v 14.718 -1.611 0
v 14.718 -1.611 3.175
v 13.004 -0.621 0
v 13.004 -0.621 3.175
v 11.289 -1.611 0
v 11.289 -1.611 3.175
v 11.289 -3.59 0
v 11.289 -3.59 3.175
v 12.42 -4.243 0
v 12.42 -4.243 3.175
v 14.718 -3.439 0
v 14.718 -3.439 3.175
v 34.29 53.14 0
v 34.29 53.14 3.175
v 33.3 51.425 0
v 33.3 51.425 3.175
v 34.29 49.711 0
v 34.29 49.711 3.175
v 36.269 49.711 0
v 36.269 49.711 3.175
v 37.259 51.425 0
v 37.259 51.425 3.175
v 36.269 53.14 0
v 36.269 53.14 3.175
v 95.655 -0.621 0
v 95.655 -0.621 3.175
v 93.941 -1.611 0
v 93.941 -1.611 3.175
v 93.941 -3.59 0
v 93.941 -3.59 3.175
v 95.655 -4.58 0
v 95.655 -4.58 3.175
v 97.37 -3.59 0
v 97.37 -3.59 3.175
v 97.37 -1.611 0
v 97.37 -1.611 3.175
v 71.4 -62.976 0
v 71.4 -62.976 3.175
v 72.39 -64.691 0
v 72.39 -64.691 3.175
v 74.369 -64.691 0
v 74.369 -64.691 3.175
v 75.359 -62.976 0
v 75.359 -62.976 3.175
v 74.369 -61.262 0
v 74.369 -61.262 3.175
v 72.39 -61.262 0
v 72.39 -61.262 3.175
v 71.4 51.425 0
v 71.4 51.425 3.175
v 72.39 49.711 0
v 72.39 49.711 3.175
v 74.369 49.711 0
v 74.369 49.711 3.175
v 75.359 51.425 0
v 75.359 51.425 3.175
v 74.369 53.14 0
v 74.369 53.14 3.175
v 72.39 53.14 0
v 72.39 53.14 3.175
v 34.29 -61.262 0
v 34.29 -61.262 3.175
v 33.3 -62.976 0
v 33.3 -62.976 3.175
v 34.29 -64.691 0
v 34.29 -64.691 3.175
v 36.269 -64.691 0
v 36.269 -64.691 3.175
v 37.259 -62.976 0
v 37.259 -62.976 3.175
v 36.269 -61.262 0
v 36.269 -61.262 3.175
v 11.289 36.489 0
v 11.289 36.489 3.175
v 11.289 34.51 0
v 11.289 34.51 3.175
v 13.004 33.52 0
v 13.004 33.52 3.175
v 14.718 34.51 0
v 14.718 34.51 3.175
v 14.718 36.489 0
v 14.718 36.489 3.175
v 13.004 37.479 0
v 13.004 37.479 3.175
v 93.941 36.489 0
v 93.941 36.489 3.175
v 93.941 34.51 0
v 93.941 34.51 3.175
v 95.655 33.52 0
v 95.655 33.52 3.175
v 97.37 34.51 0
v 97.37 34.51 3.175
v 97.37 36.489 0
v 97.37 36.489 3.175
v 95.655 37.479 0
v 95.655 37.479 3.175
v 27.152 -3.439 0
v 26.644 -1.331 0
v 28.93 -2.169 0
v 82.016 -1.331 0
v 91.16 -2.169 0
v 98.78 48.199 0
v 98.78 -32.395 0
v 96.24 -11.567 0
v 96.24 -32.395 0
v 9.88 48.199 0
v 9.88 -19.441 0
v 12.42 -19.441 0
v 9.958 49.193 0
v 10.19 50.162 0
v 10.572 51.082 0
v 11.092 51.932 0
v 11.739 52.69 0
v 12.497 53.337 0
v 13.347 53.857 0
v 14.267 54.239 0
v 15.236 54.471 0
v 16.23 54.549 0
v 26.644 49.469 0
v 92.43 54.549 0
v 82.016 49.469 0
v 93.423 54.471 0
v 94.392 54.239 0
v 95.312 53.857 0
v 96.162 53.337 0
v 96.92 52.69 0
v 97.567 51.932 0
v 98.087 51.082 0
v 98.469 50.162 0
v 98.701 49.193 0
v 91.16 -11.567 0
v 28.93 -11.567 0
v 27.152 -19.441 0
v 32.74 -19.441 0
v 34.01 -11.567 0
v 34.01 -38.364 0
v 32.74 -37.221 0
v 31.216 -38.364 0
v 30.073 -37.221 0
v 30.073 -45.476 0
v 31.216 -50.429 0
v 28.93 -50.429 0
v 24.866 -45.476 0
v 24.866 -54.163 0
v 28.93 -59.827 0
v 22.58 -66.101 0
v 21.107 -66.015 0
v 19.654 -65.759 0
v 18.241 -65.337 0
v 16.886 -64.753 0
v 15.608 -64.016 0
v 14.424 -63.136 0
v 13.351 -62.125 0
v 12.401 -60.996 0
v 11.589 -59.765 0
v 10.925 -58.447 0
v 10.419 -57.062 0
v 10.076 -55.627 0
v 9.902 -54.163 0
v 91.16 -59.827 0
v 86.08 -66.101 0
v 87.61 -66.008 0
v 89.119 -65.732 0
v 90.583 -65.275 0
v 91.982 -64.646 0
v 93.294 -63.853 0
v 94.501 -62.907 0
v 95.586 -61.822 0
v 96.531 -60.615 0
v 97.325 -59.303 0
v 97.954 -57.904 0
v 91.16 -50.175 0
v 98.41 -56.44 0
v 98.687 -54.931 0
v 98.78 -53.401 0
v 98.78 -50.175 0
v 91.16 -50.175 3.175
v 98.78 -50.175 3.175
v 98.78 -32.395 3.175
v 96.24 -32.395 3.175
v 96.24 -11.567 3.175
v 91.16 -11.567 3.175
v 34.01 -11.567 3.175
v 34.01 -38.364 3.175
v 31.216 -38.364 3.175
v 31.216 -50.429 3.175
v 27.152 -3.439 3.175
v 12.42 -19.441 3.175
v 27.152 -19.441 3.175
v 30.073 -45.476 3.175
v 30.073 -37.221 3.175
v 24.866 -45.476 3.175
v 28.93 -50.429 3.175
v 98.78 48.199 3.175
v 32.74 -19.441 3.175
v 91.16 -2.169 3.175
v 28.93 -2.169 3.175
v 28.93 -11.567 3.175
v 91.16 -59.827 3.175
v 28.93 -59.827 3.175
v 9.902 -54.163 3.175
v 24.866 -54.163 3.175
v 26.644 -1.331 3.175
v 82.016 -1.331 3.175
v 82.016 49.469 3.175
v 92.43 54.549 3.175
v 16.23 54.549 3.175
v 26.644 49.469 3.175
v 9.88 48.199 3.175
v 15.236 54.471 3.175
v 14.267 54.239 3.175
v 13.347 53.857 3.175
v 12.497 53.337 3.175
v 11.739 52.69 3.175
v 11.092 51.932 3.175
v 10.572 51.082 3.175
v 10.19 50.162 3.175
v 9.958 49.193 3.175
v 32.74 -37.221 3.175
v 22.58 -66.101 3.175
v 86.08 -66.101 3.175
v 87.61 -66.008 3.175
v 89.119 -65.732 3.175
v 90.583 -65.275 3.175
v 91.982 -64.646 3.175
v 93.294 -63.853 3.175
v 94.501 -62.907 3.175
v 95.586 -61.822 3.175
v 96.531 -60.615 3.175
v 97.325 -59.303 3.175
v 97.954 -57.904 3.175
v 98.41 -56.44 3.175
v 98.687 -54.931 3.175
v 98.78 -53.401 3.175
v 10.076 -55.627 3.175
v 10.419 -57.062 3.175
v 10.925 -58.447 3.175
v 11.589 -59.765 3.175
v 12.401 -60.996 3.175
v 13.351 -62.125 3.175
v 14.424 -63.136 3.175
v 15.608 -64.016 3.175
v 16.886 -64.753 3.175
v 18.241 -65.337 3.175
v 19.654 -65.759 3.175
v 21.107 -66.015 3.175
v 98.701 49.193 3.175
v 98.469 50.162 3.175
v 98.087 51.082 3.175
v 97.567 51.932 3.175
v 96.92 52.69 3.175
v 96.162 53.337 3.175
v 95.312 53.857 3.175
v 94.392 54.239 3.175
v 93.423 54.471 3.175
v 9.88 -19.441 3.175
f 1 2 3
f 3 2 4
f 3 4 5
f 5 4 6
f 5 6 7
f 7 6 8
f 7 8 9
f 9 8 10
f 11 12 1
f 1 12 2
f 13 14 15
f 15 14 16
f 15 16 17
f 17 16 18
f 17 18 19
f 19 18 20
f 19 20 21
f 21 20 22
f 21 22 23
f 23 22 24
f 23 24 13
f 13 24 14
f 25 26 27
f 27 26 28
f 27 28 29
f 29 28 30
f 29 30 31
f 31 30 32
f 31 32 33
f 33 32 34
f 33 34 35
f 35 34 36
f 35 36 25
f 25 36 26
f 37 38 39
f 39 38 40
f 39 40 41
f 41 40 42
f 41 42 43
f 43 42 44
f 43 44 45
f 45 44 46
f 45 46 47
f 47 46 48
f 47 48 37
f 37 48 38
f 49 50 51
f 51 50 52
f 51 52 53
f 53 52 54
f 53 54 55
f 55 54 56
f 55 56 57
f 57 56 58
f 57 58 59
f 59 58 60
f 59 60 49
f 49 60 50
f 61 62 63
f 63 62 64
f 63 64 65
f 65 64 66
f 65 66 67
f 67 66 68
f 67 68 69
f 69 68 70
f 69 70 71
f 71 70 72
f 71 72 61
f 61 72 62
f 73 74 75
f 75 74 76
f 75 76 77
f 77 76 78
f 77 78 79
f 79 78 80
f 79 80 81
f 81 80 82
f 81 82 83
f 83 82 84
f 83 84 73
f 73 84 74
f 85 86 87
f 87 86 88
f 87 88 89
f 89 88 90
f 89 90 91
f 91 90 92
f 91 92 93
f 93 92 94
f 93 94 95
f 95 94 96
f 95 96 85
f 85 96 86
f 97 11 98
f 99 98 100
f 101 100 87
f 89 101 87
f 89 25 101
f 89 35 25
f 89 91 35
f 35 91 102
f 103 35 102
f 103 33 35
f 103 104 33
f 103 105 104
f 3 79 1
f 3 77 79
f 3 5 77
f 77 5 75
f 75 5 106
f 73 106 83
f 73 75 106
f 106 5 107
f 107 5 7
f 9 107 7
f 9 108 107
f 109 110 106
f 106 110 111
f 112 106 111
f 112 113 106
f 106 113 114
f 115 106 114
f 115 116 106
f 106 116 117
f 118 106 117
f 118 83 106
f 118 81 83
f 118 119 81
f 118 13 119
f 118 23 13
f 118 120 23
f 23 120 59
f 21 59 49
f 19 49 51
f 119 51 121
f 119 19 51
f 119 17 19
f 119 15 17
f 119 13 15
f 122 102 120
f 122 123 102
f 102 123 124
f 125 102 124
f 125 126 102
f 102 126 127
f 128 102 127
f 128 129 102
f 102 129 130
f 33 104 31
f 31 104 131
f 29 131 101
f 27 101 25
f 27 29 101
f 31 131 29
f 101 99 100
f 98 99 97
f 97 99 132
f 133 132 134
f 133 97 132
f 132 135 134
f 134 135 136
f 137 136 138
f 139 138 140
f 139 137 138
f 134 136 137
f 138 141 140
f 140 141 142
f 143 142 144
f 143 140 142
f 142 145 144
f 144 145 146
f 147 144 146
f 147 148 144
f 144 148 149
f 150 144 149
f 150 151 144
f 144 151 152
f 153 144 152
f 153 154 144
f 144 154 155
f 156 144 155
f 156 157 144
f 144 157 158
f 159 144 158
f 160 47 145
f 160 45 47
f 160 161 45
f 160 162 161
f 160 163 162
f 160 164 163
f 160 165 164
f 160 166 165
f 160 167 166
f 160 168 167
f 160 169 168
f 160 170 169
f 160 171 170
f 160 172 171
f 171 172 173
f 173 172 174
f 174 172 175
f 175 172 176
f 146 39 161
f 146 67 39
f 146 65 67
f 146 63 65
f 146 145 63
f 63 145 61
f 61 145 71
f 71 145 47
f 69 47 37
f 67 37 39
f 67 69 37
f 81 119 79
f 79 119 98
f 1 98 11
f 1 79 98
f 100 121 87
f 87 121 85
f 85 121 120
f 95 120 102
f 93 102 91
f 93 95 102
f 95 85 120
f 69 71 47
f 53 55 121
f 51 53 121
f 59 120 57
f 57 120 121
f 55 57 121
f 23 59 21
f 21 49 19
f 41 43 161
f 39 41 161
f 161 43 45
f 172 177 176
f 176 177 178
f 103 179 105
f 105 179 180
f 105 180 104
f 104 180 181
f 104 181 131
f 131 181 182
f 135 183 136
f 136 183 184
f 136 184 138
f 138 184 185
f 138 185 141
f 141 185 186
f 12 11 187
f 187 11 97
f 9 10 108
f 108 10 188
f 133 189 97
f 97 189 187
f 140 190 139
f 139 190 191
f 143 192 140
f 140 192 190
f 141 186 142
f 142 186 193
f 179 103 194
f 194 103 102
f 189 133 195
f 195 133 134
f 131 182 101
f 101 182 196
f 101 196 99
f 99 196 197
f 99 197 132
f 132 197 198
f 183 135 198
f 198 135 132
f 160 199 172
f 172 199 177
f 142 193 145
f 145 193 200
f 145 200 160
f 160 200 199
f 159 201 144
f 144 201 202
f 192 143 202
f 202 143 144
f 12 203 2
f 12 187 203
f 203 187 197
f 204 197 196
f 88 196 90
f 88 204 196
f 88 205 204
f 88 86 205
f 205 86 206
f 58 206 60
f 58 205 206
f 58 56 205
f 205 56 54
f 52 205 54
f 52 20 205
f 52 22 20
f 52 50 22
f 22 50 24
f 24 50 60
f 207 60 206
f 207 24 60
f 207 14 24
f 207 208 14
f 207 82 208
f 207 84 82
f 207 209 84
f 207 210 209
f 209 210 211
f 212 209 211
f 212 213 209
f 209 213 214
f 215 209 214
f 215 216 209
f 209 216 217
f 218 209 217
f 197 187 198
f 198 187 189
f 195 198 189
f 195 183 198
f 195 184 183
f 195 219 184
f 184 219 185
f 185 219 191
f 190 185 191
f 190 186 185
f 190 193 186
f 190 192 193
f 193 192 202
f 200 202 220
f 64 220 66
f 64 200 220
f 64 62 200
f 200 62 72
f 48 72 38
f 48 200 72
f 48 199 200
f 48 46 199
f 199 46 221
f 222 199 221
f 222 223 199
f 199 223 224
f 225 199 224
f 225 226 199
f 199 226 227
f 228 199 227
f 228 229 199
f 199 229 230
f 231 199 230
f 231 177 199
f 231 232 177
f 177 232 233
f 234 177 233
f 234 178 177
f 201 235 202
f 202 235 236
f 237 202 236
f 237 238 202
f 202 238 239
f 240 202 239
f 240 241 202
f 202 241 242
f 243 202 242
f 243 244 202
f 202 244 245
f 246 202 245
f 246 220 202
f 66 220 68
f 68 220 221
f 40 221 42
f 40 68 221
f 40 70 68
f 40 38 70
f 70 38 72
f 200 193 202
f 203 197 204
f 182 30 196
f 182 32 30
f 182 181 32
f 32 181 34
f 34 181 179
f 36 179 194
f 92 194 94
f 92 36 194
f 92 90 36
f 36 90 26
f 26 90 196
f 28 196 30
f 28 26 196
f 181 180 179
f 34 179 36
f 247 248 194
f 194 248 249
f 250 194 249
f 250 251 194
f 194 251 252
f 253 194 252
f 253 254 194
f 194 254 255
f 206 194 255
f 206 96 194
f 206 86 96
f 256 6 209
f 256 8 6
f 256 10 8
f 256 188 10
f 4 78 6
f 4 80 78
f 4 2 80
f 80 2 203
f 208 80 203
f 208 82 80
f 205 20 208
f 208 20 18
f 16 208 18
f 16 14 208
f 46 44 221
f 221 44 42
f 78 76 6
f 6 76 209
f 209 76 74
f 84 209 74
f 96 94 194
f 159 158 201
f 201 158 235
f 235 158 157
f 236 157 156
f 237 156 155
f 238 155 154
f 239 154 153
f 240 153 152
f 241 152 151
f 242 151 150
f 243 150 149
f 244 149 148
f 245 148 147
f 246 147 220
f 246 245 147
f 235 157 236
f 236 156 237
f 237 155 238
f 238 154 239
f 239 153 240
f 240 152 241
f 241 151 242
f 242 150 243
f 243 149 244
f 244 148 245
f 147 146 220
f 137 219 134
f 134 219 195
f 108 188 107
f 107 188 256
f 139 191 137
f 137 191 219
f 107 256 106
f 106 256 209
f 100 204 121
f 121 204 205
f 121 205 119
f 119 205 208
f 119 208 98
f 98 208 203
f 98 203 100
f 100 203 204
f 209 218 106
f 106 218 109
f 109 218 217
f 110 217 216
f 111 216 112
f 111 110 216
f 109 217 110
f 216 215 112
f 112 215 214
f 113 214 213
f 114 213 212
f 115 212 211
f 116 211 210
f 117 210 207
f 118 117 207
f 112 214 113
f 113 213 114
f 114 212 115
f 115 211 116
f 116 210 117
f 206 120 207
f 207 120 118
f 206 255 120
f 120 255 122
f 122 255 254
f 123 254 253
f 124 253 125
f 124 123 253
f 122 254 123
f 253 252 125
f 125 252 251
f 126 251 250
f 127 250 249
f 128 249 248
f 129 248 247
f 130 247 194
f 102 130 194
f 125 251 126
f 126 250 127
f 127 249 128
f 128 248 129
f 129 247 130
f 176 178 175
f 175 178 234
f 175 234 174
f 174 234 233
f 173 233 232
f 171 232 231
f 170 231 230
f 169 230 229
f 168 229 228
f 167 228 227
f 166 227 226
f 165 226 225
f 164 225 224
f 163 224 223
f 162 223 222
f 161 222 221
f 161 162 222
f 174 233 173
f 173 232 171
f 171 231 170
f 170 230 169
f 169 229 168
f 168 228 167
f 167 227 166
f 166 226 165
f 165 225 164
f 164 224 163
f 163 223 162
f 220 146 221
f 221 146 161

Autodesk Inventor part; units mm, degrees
ref_plane "YZ Plane" through (0, 0, 0) normal (1, 0, 0) x (0, 1, 0)
ref_plane "XZ Plane" through (0, 0, 0) normal (0, 1, 0) x (-1, 0, 0)
ref_plane "XY Plane" through (0, 0, 0) normal (0, 0, 1) x (1, 0, 0)
sketch "Sketch1" plane through (0, 0, 0) normal (0, 0, 1) x (1, 0, 0)
  line L0 (9.8795, 48.1994) -> (9.8795, -53.4006)
  line L1 (16.2295, 54.5494) -> (92.4295, 54.5494)
  line L2 (98.7795, 48.1994) -> (98.7795, -53.4006)
  line L3 (22.5795, -66.1006) -> (86.0795, -66.1006)
  arc A0 (9.8795, -53.4006) -> (22.5795, -66.1006) centre (22.5795, -53.4006) ccw
  arc A1 (16.2295, 54.5494) -> (9.8795, 48.1994) centre (16.2295, 48.1994) ccw
  arc A2 (98.7795, 48.1994) -> (92.4295, 54.5494) centre (92.4295, 48.1994) ccw
  arc A3 (86.0795, -66.1006) -> (98.7795, -53.4006) centre (86.0795, -53.4006) ccw
  point P0 (0, 0)
  dimension "d0" = 12.7
  dimension "d1" = 6.35
  dimension "d2" = 120.65
  dimension "d3" = 88.9
extrude "Extrusion1" add sketch "Sketch1" along normal blind 3.175
sketch "Sketch2" plane through (0, 0, 3.175) normal (0, 0, 1) x (1, 0, 0)
  line L0 (9.8795, -53.4006) -> (9.8795, 48.1994) projected
  line L1 (98.7795, 48.1994) -> (98.7795, -53.4006) projected
  line L2 (16.2295, 54.5494) -> (92.4295, 54.5494) projected
  line L3 (26.6435, 49.4694) -> (82.0155, 49.4694)
  line L4 (82.0155, 49.4694) -> (82.0155, -1.3306)
  line L5 (82.0155, -1.3306) -> (26.6435, -1.3306)
  line L6 (26.6435, -1.3306) -> (26.6435, 49.4694)
  point P0 (0, 0)
  dimension "d13" = 16.764
  dimension "d14" = 16.764
  dimension "d15" = 5.08
  dimension "d16" = 55.88
extrude "Extrusion2" cut sketch "Sketch2" against normal through all
sketch "Sketch3" plane through (0, 0, 3.175) normal (0, 0, 1) x (1, 0, 0)
  line L0 (9.8795, -53.4006) -> (9.8795, 48.1994) projected
  line L1 (86.0795, -66.1006) -> (22.5795, -66.1006) projected
  line L2 (9.8795, -19.4408) -> (32.7395, -19.4408)
  line L3 (32.7395, -19.4408) -> (32.7395, -37.2208)
  line L4 (32.7395, -37.2208) -> (9.8795, -37.2208)
  point P0 (0, 0)
  dimension "d20" = 28.8798
  dimension "d21" = 46.6598
  dimension "d22" = 22.86
extrude "Extrusion3" cut sketch "Sketch3" against normal through all
sketch "Sketch4" plane through (0, 0, 3.175) normal (0, 0, 1) x (1, 0, 0)
  line L0 (9.8795, -53.4006) -> (9.8795, -37.2208) projected
  arc A0 (9.8795, -53.4006) -> (22.5795, -66.1006) centre (22.5795, -53.4006) ccw projected
  line L1 (86.0795, -66.1006) -> (22.5795, -66.1006) projected
  line L2 (24.8655, -43.5708) -> (24.8655, -54.1626)
  line L3 (24.8655, -43.5708) -> (9.8795, -43.5708)
  line L4 (24.8655, -54.1626) -> (9.9024, -54.1626)
  point P0 (0, 0)
  dimension "d26" = 22.5298
  dimension "d27" = 14.986
  dimension "d28" = 11.938
extrude "Extrusion4" cut sketch "Sketch4" against normal through all
sketch "Sketch5" plane through (0, 0, 3.175) normal (0, 0, 1) x (1, 0, 0)
  line L0 (86.0795, -66.1006) -> (22.5795, -66.1006) projected
  line L1 (9.8795, -19.4408) -> (9.8795, 48.1994) projected
  line L2 (9.8795, -43.5708) -> (9.8795, -37.2208) projected
  line L3 (28.9295, -2.1688) -> (91.1595, -2.1688)
  line L4 (91.1595, -2.1688) -> (91.1595, -11.5668)
  line L5 (91.1595, -11.5668) -> (28.9295, -11.5668)
  line L6 (28.9295, -11.5668) -> (28.9295, -2.1688)
  line L7 (28.9295, -50.4288) -> (91.1595, -50.4288)
  line L8 (91.1595, -50.4288) -> (91.1595, -59.8268)
  line L9 (91.1595, -59.8268) -> (28.9295, -59.8268)
  line L10 (28.9295, -59.8268) -> (28.9295, -50.4288)
  point P0 (0, 0)
  dimension "d31" = 54.5338
  dimension "d32" = 9.398
  dimension "d33" = 62.23
  dimension "d34" = 19.05
  dimension "d35" = 19.05
  dimension "d36" = 6.2738
extrude "Extrusion5" cut sketch "Sketch5" against normal through all
sketch "Sketch8" plane through (0, 0, 3.175) normal (0, 0, 1) x (1, 0, 0)
  line L0 (91.1595, -11.5668) -> (28.9295, -11.5668) projected
  line L1 (28.9295, -50.4288) -> (91.1595, -50.4288) projected
  line L2 (91.1595, -50.4288) -> (91.1595, -59.8268) projected
  line L3 (9.8795, -43.5708) -> (24.8655, -43.5708) projected
  line L4 (24.8655, -43.5708) -> (24.8655, -54.1626) projected
  line L5 (86.0795, -66.1006) -> (22.5795, -66.1006) projected
  line L6 (98.7795, 48.1994) -> (98.7795, -53.4006) projected
  line L7 (9.8795, -19.4408) -> (9.8795, 48.1994) projected
  line L8 (9.8795, -19.4408) -> (32.7395, -19.4408) projected
  line L9 (32.7395, -37.2208) -> (9.8795, -37.2208) projected
  line L10 (9.8795, -43.5708) -> (9.8795, -37.2208) projected
  line L11 (96.2395, -11.5668) -> (96.2395, -32.3948)
  line L12 (96.2395, -32.3948) -> (98.7795, -32.3948)
  line L13 (91.1595, -11.5668) -> (96.2395, -11.5668)
  line L14 (98.7795, -50.1748) -> (91.1595, -50.1748)
  line L15 (9.8795, -3.4388) -> (27.1515, -3.4388)
  line L16 (27.1515, -3.4388) -> (27.1515, -19.4408)
  line L17 (34.0095, -11.5668) -> (34.0095, -38.3638)
  line L18 (31.2155, -38.3638) -> (31.2155, -50.4288)
  line L19 (30.0725, -37.2208) -> (30.0725, -45.4758)
  line L20 (24.8655, -45.4758) -> (30.0725, -45.4758)
  line L21 (31.2155, -38.3638) -> (34.0095, -38.3638)
  line L22 (91.1595, -50.4288) -> (91.1595, -50.1748)
  line L23 (12.4195, -3.4388) -> (12.4195, -19.4408)
  point P0 (0, 0)
  dimension "d63" = 2.54
  dimension "d67" = 15.9258
  dimension "d68" = 16.002
  dimension "d69" = 17.272
  dimension "d70" = 24.13
  dimension "d71" = 21.336
  dimension "d72" = 1.143
  dimension "d73" = 1.143
  dimension "d76" = 17.78
  dimension "d78" = 2.54
  dimension "d79" = 1.905
extrude "Extrusion11" cut sketch "Sketch8" against normal through all contours L13 L11 L12 L6 L14 L22 L1 L18 L21 L17 L0 | L10 L9 L19 L20 L4 L3 | L23 L15 L16 L8
sketch "Sketch9" plane through (0, 0, 3.175) normal (0, 0, 1) x (1, 0, 0)
  line L0 (98.7795, 48.1994) -> (98.7795, -32.3948) projected
  line L1 (16.2295, 54.5494) -> (92.4295, 54.5494) projected
  line L2 (9.8795, -19.4408) -> (9.8795, 48.1994) projected
  line L3 (86.0795, -66.1006) -> (22.5795, -66.1006) projected
  line L4 (36.2694, 49.7107) -> (34.2897, 49.7107)
  line L5 (34.2897, 49.7107) -> (33.2998, 51.4252)
  line L6 (33.2998, 51.4252) -> (34.2897, 53.1397)
  line L7 (34.2897, 53.1397) -> (36.2694, 53.1397)
  line L8 (36.2694, 53.1397) -> (37.2593, 51.4252)
  line L9 (37.2593, 51.4252) -> (36.2694, 49.7107)
  line L10 (14.7182, 34.5095) -> (13.0037, 33.5197)
  line L11 (13.0037, 33.5197) -> (11.2892, 34.5095)
  line L12 (11.2892, 34.5095) -> (11.2892, 36.4893)
  line L13 (11.2892, 36.4893) -> (13.0037, 37.4791)
  line L14 (13.0037, 37.4791) -> (14.7182, 36.4893)
  line L15 (14.7182, 36.4893) -> (14.7182, 34.5095)
  line L16 (14.7182, -3.5905) -> (13.0037, -4.5803)
  line L17 (13.0037, -4.5803) -> (11.2892, -3.5905)
  line L18 (11.2892, -3.5905) -> (11.2892, -1.6107)
  line L19 (11.2892, -1.6107) -> (13.0037, -0.6209)
  line L20 (13.0037, -0.6209) -> (14.7182, -1.6107)
  line L21 (14.7182, -1.6107) -> (14.7182, -3.5905)
  line L22 (75.3593, 51.4252) -> (74.3694, 49.7107)
  line L23 (74.3694, 49.7107) -> (72.3897, 49.7107)
  line L24 (72.3897, 49.7107) -> (71.3998, 51.4252)
  line L25 (71.3998, 51.4252) -> (72.3897, 53.1397)
  line L26 (72.3897, 53.1397) -> (74.3694, 53.1397)
  line L27 (74.3694, 53.1397) -> (75.3593, 51.4252)
  line L28 (97.3698, 34.5095) -> (95.6553, 33.5197)
  line L29 (95.6553, 33.5197) -> (93.9408, 34.5095)
  line L30 (93.9408, 34.5095) -> (93.9408, 36.4893)
  line L31 (93.9408, 36.4893) -> (95.6553, 37.4791)
  line L32 (95.6553, 37.4791) -> (97.3698, 36.4893)
  line L33 (97.3698, 36.4893) -> (97.3698, 34.5095)
  line L34 (95.6553, -4.5803) -> (93.9408, -3.5905)
  line L35 (93.9408, -3.5905) -> (93.9408, -1.6107)
  line L36 (93.9408, -1.6107) -> (95.6553, -0.6209)
  line L37 (95.6553, -0.6209) -> (97.3698, -1.6107)
  line L38 (97.3698, -1.6107) -> (97.3698, -3.5905)
  line L39 (97.3698, -3.5905) -> (95.6553, -4.5803)
  line L40 (36.2694, -64.6909) -> (34.2897, -64.6909)
  line L41 (34.2897, -64.6909) -> (33.2998, -62.9764)
  line L42 (33.2998, -62.9764) -> (34.2897, -61.2619)
  line L43 (34.2897, -61.2619) -> (36.2694, -61.2619)
  line L44 (36.2694, -61.2619) -> (37.2593, -62.9764)
  line L45 (37.2593, -62.9764) -> (36.2694, -64.6909)
  line L46 (75.3593, -62.9764) -> (74.3694, -64.6909)
  line L47 (74.3694, -64.6909) -> (72.3897, -64.6909)
  line L48 (72.3897, -64.6909) -> (71.3998, -62.9764)
  line L49 (71.3998, -62.9764) -> (72.3897, -61.2619)
  line L50 (72.3897, -61.2619) -> (74.3694, -61.2619)
  line L51 (74.3694, -61.2619) -> (75.3593, -62.9764)
  point P0 (0, 0)
  point P1 (35.2795, 51.4252)
  point P2 (13.0037, 35.4994)
  point P3 (13.0037, -2.6006)
  point P4 (73.3795, 51.4252)
  point P5 (95.6553, 35.4994)
  point P6 (95.6553, -2.6006)
  point P7 (35.2795, -62.9764)
  point P8 (73.3795, -62.9764)
  dimension "d80" = 3.1242
  dimension "d81" = 3.1242
  dimension "d82" = 38.1
  dimension "d83" = 3.429
  dimension "d84" = 19.05
  dimension "d85" = 25.4
  dimension "d86" = 38.1
  dimension "d87" = 3.1242
  dimension "d88" = 3.1242
extrude "Extrusion12" cut sketch "Sketch9" against normal through all
sketch "Sketch10" plane through (0, 0, 0) normal (0, 0, -1) x (-1, 0, 0)
  line L0 (-14.7182, -3.4388) -> (-14.7182, -1.6107) projected
  line L1 (-14.7182, -1.6107) -> (-13.0037, -0.6209) projected
  line L2 (-13.0037, -0.6209) -> (-11.2892, -1.6107) projected
  line L3 (-11.2892, -1.6107) -> (-11.2892, -3.5905) projected
  line L4 (-11.2892, -3.5905) -> (-12.4195, -4.243) projected
  line L5 (-12.4195, -4.243) -> (-12.4195, -19.4408) projected
  line L6 (-12.4195, -19.4408) -> (-9.8795, -19.4408) projected
  line L7 (-9.8795, 48.1994) -> (-9.8795, -19.4408) projected
  arc A0 (-9.8795, 48.1994) -> (-16.2295, 54.5494) centre (-16.2295, 48.1994) ccw projected
  line L8 (-92.4295, 54.5494) -> (-16.2295, 54.5494) projected
  arc A1 (-92.4295, 54.5494) -> (-98.7795, 48.1994) centre (-92.4295, 48.1994) ccw projected
  line L9 (-98.7795, -32.3948) -> (-98.7795, 48.1994) projected
  line L10 (-98.7795, -32.3948) -> (-96.2395, -32.3948) projected
  line L11 (-96.2395, -32.3948) -> (-96.2395, -11.5668) projected
  line L12 (-96.2395, -11.5668) -> (-91.1595, -11.5668) projected
  line L13 (-91.1595, -11.5668) -> (-91.1595, -2.1688) projected
  line L14 (-91.1595, -2.1688) -> (-28.9295, -2.1688) projected
  line L15 (-28.9295, -2.1688) -> (-28.9295, -11.5668) projected
  line L16 (-28.9295, -11.5668) -> (-34.0095, -11.5668) projected
  line L17 (-34.0095, -11.5668) -> (-34.0095, -38.3638) projected
  line L18 (-34.0095, -38.3638) -> (-31.2155, -38.3638) projected
  line L19 (-31.2155, -38.3638) -> (-31.2155, -50.4288) projected
  line L20 (-31.2155, -50.4288) -> (-28.9295, -50.4288) projected
  line L21 (-28.9295, -50.4288) -> (-28.9295, -59.8268) projected
  line L22 (-28.9295, -59.8268) -> (-91.1595, -59.8268) projected
  line L23 (-91.1595, -59.8268) -> (-91.1595, -50.1748) projected
  line L24 (-91.1595, -50.1748) -> (-98.7795, -50.1748) projected
  line L25 (-98.7795, -53.4006) -> (-98.7795, -50.1748) projected
  arc A2 (-98.7795, -53.4006) -> (-86.0795, -66.1006) centre (-86.0795, -53.4006) ccw projected
  line L26 (-22.5795, -66.1006) -> (-86.0795, -66.1006) projected
  arc A3 (-22.5795, -66.1006) -> (-9.9024, -54.1626) centre (-22.5795, -53.4006) ccw projected
  line L27 (-9.9024, -54.1626) -> (-24.8655, -54.1626) projected
  line L28 (-24.8655, -54.1626) -> (-24.8655, -45.4758) projected
  line L29 (-24.8655, -45.4758) -> (-30.0725, -45.4758) projected
  line L30 (-30.0725, -45.4758) -> (-30.0725, -37.2208) projected
  line L31 (-30.0725, -37.2208) -> (-32.7395, -37.2208) projected
  line L32 (-32.7395, -37.2208) -> (-32.7395, -19.4408) projected
  line L33 (-32.7395, -19.4408) -> (-27.1515, -19.4408) projected
  line L34 (-27.1515, -19.4408) -> (-27.1515, -3.4388) projected
  line L35 (-27.1515, -3.4388) -> (-14.7182, -3.4388) projected
  line L36 (-26.6435, 49.4694) -> (-26.6435, -1.3306) projected
  line L37 (-26.6435, -1.3306) -> (-82.0155, -1.3306) projected
  line L38 (-82.0155, -1.3306) -> (-82.0155, 49.4694) projected
  line L39 (-82.0155, 49.4694) -> (-26.6435, 49.4694) projected
  line L40 (-97.3698, 34.5095) -> (-97.3698, 36.4893) projected
  line L41 (-97.3698, 36.4893) -> (-95.6553, 37.4791) projected
  line L42 (-95.6553, 37.4791) -> (-93.9408, 36.4893) projected
  line L43 (-93.9408, 36.4893) -> (-93.9408, 34.5095) projected
  line L44 (-93.9408, 34.5095) -> (-95.6553, 33.5197) projected
  line L45 (-95.6553, 33.5197) -> (-97.3698, 34.5095) projected
  line L46 (-14.7182, 34.5095) -> (-14.7182, 36.4893) projected
  line L47 (-14.7182, 36.4893) -> (-13.0037, 37.4791) projected
  line L48 (-13.0037, 37.4791) -> (-11.2892, 36.4893) projected
  line L49 (-11.2892, 36.4893) -> (-11.2892, 34.5095) projected
  line L50 (-11.2892, 34.5095) -> (-13.0037, 33.5197) projected
  line L51 (-13.0037, 33.5197) -> (-14.7182, 34.5095) projected
  line L52 (-36.2694, -64.6909) -> (-37.2593, -62.9764) projected
  line L53 (-37.2593, -62.9764) -> (-36.2694, -61.2619) projected
  line L54 (-36.2694, -61.2619) -> (-34.2897, -61.2619) projected
  line L55 (-34.2897, -61.2619) -> (-33.2998, -62.9764) projected
  line L56 (-33.2998, -62.9764) -> (-34.2897, -64.6909) projected
  line L57 (-34.2897, -64.6909) -> (-36.2694, -64.6909) projected
  line L58 (-75.3593, 51.4252) -> (-74.3694, 53.1397) projected
  line L59 (-74.3694, 53.1397) -> (-72.3897, 53.1397) projected
  line L60 (-72.3897, 53.1397) -> (-71.3998, 51.4252) projected
  line L61 (-71.3998, 51.4252) -> (-72.3897, 49.7107) projected
  line L62 (-72.3897, 49.7107) -> (-74.3694, 49.7107) projected
  line L63 (-74.3694, 49.7107) -> (-75.3593, 51.4252) projected
  line L64 (-75.3593, -62.9764) -> (-74.3694, -61.2619) projected
  line L65 (-74.3694, -61.2619) -> (-72.3897, -61.2619) projected
  line L66 (-72.3897, -61.2619) -> (-71.3998, -62.9764) projected
  line L67 (-71.3998, -62.9764) -> (-72.3897, -64.6909) projected
  line L68 (-72.3897, -64.6909) -> (-74.3694, -64.6909) projected
  line L69 (-74.3694, -64.6909) -> (-75.3593, -62.9764) projected
  line L70 (-95.6553, -4.5803) -> (-97.3698, -3.5905) projected
  line L71 (-97.3698, -3.5905) -> (-97.3698, -1.6107) projected
  line L72 (-97.3698, -1.6107) -> (-95.6553, -0.6209) projected
  line L73 (-95.6553, -0.6209) -> (-93.9408, -1.6107) projected
  line L74 (-93.9408, -1.6107) -> (-93.9408, -3.5905) projected
  line L75 (-93.9408, -3.5905) -> (-95.6553, -4.5803) projected
  line L76 (-36.2694, 49.7107) -> (-37.2593, 51.4252) projected
  line L77 (-37.2593, 51.4252) -> (-36.2694, 53.1397) projected
  line L78 (-36.2694, 53.1397) -> (-34.2897, 53.1397) projected
  line L79 (-34.2897, 53.1397) -> (-33.2998, 51.4252) projected
  line L80 (-33.2998, 51.4252) -> (-34.2897, 49.7107) projected
  line L81 (-34.2897, 49.7107) -> (-36.2694, 49.7107) projected
  point P0 (0, 0)
  dimension "d91" = 16.764
  dimension "d92" = 72.136
  dimension "d93" = 115.57
  dimension "d94" = 64.77
equation "\"d14\" = d13"
equation "\"d35\" = d34"
equation "\"d73\" = d72"
properties part number "beagle_spacer_top"
